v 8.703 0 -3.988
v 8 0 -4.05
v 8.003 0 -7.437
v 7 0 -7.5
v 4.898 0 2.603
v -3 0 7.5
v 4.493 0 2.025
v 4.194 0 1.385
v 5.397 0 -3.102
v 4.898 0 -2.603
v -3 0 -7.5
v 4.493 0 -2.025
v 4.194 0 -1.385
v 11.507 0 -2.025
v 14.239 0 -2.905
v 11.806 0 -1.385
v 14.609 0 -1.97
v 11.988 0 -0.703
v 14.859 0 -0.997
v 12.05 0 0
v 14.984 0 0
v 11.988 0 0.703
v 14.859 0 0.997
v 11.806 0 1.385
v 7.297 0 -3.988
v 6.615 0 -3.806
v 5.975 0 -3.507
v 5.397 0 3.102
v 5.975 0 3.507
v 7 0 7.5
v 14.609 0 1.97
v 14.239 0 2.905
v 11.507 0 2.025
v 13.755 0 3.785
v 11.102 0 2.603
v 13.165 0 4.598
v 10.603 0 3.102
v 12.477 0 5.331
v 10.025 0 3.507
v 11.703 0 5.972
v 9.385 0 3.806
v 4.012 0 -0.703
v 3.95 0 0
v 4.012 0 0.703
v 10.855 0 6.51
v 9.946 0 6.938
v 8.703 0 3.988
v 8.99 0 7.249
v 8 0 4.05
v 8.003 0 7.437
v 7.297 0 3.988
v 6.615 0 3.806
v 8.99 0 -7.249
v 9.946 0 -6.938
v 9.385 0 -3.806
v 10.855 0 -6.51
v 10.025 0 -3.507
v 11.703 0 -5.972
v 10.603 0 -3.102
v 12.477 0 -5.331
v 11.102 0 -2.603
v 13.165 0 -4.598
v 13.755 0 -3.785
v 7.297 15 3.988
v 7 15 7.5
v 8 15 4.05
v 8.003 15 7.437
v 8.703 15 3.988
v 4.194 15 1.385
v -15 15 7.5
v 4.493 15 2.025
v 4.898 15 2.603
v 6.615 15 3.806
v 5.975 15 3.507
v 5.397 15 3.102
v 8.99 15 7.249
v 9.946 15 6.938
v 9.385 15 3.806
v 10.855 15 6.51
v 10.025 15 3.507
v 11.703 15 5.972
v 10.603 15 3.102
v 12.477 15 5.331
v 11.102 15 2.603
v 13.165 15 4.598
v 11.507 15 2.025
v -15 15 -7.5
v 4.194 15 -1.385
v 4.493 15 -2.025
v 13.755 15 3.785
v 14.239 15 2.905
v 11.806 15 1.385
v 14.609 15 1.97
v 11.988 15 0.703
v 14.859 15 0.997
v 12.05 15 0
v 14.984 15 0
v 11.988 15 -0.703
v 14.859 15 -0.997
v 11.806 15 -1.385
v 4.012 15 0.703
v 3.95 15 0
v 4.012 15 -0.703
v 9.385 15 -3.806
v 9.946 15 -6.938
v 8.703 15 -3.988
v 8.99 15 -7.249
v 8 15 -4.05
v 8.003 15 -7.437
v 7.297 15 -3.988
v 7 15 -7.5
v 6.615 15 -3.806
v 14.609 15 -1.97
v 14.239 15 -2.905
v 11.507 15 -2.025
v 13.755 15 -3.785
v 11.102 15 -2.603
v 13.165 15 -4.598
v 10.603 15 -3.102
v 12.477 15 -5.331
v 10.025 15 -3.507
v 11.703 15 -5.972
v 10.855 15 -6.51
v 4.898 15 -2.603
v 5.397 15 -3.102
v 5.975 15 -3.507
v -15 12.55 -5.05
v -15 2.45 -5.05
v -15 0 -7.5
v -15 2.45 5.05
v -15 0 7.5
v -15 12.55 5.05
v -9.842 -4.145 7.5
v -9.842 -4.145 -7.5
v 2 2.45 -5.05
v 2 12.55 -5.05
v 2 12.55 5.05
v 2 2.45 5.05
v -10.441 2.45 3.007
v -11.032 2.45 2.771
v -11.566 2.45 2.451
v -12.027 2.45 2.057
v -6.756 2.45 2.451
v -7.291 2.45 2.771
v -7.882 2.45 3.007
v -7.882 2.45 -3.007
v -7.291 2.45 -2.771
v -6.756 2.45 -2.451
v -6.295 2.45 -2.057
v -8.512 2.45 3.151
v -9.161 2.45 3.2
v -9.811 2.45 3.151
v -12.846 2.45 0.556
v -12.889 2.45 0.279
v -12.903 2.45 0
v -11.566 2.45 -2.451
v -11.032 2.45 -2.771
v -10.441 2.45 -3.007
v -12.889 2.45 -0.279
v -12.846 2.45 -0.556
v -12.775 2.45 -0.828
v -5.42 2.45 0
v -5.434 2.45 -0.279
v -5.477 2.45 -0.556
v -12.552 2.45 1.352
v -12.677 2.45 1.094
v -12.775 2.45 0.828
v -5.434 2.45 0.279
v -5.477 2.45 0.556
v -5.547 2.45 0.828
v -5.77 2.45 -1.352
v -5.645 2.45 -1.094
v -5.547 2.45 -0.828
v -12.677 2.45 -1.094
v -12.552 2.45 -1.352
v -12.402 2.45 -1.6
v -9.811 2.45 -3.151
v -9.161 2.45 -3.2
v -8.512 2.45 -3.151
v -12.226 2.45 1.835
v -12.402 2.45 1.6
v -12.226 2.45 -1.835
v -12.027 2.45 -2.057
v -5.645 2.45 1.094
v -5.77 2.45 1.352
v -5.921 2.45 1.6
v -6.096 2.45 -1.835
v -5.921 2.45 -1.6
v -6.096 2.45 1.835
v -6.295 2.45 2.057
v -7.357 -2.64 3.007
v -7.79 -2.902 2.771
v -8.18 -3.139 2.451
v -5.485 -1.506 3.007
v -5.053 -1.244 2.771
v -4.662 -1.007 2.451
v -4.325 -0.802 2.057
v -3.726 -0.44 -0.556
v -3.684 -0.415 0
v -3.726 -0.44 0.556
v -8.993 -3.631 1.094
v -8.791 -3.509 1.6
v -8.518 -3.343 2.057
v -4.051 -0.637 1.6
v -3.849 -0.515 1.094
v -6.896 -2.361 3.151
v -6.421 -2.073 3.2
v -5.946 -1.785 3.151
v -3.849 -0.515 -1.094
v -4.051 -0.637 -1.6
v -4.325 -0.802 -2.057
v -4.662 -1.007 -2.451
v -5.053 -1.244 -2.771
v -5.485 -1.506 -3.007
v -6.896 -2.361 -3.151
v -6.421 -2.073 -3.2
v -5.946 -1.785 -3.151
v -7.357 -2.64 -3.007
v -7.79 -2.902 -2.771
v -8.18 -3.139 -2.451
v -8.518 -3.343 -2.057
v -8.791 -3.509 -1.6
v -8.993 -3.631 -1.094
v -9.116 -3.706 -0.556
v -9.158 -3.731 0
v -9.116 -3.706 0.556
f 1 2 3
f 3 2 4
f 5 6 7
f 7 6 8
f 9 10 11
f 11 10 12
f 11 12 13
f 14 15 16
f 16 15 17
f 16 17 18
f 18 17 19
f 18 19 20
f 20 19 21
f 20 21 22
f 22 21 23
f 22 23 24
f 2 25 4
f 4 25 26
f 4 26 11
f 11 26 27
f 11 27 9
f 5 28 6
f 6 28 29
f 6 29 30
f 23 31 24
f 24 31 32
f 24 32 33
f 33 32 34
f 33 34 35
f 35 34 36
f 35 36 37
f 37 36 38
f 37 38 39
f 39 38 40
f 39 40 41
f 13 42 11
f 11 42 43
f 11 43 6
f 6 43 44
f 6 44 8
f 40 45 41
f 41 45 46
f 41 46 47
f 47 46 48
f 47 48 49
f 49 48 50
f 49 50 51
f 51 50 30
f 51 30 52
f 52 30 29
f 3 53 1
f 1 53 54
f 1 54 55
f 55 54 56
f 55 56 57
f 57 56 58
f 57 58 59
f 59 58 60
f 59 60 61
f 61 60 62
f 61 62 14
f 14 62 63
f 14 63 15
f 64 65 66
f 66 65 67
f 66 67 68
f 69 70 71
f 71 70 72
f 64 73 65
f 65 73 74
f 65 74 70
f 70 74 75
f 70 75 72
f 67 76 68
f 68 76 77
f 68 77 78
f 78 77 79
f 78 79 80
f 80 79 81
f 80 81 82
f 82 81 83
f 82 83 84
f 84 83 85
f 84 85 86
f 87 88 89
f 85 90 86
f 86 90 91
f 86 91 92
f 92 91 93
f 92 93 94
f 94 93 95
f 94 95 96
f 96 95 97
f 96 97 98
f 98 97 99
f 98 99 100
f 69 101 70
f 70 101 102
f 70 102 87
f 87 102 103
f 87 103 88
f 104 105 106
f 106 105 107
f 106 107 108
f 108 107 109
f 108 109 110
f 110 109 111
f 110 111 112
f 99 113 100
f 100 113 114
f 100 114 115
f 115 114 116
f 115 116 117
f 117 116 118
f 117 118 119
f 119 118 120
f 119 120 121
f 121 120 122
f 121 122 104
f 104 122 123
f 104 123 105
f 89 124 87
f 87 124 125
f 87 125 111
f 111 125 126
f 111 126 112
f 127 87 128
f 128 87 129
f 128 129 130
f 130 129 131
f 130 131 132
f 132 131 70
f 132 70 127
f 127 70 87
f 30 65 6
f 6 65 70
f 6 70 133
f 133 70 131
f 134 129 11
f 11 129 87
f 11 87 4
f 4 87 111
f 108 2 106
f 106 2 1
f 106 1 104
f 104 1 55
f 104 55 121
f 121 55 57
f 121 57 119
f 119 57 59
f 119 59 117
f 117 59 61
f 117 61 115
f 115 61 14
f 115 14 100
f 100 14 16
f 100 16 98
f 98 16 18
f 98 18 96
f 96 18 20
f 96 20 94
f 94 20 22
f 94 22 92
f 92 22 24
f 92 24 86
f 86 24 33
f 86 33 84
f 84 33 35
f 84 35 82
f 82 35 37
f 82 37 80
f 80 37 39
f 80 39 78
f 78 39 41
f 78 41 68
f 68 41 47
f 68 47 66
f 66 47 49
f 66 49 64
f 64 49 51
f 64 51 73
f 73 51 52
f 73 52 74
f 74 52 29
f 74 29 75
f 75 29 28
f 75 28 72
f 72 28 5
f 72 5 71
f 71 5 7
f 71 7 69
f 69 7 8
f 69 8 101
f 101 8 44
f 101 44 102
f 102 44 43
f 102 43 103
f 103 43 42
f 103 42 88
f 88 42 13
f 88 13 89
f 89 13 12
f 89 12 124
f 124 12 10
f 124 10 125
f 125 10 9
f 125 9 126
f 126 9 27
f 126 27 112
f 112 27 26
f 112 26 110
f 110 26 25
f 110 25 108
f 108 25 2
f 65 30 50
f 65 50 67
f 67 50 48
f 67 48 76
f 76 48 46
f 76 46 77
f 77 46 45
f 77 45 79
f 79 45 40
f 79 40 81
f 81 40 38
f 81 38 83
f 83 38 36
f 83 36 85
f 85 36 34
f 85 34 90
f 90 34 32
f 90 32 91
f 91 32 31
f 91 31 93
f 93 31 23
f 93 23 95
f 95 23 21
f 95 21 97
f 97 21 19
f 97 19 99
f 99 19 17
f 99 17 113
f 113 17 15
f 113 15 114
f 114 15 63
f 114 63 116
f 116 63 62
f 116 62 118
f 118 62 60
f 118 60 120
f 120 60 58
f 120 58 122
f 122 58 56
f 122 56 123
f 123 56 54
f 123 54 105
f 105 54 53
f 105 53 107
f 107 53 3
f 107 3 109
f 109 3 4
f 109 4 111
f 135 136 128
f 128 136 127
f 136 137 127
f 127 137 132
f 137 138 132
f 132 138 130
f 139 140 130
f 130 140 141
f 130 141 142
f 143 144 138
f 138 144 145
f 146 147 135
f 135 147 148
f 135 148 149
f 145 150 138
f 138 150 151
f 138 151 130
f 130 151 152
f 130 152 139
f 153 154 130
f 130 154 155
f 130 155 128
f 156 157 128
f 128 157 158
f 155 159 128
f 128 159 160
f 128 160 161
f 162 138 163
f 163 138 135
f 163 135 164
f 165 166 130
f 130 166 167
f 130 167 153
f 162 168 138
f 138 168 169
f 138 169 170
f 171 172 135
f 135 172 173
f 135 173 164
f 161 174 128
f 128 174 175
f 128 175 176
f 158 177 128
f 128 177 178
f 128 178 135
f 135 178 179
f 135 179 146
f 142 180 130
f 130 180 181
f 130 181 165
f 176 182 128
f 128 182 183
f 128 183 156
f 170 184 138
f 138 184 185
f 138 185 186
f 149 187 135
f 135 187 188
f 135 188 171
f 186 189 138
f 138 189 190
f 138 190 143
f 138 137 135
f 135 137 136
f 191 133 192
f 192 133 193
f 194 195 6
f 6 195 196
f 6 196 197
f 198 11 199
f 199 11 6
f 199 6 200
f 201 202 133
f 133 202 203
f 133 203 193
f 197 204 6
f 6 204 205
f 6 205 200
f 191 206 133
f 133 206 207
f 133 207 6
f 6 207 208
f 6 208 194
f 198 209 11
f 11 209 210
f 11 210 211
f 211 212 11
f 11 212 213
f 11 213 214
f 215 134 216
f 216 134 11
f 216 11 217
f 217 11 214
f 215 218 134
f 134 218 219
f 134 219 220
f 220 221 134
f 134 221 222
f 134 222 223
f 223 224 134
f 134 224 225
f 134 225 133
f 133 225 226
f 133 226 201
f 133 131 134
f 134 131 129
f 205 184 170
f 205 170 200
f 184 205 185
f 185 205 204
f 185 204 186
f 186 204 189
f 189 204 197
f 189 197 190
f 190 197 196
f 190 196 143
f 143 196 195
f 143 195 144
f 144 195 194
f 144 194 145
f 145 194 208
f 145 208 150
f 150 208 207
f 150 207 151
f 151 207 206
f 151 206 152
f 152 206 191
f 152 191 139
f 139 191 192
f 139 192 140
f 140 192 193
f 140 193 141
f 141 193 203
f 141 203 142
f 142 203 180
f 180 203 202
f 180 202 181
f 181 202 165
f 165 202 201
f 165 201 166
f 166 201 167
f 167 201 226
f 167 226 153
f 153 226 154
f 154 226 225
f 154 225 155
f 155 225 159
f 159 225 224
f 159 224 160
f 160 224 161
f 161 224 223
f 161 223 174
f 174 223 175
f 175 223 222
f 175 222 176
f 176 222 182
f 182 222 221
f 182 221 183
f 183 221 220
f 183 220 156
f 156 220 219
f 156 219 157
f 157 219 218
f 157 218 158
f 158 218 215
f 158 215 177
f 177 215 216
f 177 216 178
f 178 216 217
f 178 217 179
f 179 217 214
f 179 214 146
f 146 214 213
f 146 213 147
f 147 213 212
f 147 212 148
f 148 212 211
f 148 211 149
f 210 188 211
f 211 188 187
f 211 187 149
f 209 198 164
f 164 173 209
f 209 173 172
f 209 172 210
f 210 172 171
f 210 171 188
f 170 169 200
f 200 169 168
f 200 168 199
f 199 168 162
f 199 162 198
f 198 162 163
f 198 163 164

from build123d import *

# Parameters (mm, degrees)
SKETCH1_W           = 30
SKETCH1_H           = 15
SKETCH1_R           = 4.05
BOSS_EXTRUDE1_DEPTH = 15
FILLET1_R           = 8
SKETCH2_W           = 10.1
SKETCH2_H           = 10.1
CUT_EXTRUDE1_DEPTH  = 17
BOSS_EXTRUDE2_DEPTH = 15
CUT_EXTRUDE2_REACH  = 24.191
SKETCH4_R           = 3.2


with BuildPart() as part:
    # Sketch1 → Boss-Extrude1 (new body)
    with BuildSketch(Plane(origin=(0, 0, 0), x_dir=(1, 0, 0), z_dir=(0, 1, 0))):
        Rectangle(SKETCH1_W, SKETCH1_H)
        with Locations(Location((8, 0, 0), (0, 0, 270))):
            Circle(SKETCH1_R, mode=Mode.SUBTRACT)
    extrude(amount=BOSS_EXTRUDE1_DEPTH)

    # Fillet1
    # the kernel refuses this fillet: 8 mm, written as the material it takes off along each edge
    with BuildSketch(Plane(origin=(15, -20, -7.5), x_dir=(-1, 0, 0), z_dir=(0, 1, 0))) as fillet1_piece_1:
        with BuildLine():
            CenterArc((FILLET1_R, FILLET1_R), FILLET1_R, 180, 90)
            Line((0, FILLET1_R), (0, 0))
            Line((0, 0), (FILLET1_R, 0))
        make_face()
    extrude(amount=55, mode=Mode.SUBTRACT)
    with BuildSketch(Plane(origin=(15, -20, 7.5), x_dir=(-1, 0, 0), z_dir=(0, 1, 0))) as fillet1_piece_2:
        with BuildLine():
            CenterArc((FILLET1_R, -FILLET1_R), FILLET1_R, 90, 90)
            Line((0, -FILLET1_R), (0, 0))
            Line((0, 0), (FILLET1_R, 0))
        make_face()
    extrude(amount=55, mode=Mode.SUBTRACT)

    # Sketch2 → Cut-Extrude1 (cut)
    with BuildSketch(Plane.ZY.offset(15)):
        with Locations((0, 7.5)):
            Rectangle(SKETCH2_W, SKETCH2_H)
    extrude(amount=-CUT_EXTRUDE1_DEPTH, mode=Mode.SUBTRACT)

    # Sketch3 → Boss-Extrude2 (add)
    with BuildSketch(Plane.XY.offset(7.5)):
        Polygon((-3, 0), (-9.842158581, -4.145463298), (-15, 0), align=None)
    extrude(amount=-BOSS_EXTRUDE2_DEPTH)

    # Cut-Extrude2: up to this plane
    cut_extrude2_end = Plane(origin=(2, 2.45, 5.05), z_dir=(0, -1, 0))
    # Sketch4 → Cut-Extrude2 (cut, up to the surface)
    with BuildSketch(Plane(origin=(-0.805540592, 1.329558622, 0), x_dir=(0, 0, -1), z_dir=(0.5181829122191232, -0.8552698226198026, 0)), mode=Mode.PRIVATE) as cut_extrude2_sk1:
        with Locations(Location((0, -6.565809468, 0), (0, 0, 90))):
            Circle(SKETCH4_R)
    cut_extrude2_tool1 = split(extrude(cut_extrude2_sk1.sketch, amount=-CUT_EXTRUDE2_REACH, mode=Mode.PRIVATE), bisect_by=cut_extrude2_end, keep=Keep.BOTH, mode=Mode.PRIVATE)
    add(cut_extrude2_tool1.solids().sort_by_distance((-6.421079, -2.072732, 0))[0], mode=Mode.SUBTRACT)


solid = part.part
